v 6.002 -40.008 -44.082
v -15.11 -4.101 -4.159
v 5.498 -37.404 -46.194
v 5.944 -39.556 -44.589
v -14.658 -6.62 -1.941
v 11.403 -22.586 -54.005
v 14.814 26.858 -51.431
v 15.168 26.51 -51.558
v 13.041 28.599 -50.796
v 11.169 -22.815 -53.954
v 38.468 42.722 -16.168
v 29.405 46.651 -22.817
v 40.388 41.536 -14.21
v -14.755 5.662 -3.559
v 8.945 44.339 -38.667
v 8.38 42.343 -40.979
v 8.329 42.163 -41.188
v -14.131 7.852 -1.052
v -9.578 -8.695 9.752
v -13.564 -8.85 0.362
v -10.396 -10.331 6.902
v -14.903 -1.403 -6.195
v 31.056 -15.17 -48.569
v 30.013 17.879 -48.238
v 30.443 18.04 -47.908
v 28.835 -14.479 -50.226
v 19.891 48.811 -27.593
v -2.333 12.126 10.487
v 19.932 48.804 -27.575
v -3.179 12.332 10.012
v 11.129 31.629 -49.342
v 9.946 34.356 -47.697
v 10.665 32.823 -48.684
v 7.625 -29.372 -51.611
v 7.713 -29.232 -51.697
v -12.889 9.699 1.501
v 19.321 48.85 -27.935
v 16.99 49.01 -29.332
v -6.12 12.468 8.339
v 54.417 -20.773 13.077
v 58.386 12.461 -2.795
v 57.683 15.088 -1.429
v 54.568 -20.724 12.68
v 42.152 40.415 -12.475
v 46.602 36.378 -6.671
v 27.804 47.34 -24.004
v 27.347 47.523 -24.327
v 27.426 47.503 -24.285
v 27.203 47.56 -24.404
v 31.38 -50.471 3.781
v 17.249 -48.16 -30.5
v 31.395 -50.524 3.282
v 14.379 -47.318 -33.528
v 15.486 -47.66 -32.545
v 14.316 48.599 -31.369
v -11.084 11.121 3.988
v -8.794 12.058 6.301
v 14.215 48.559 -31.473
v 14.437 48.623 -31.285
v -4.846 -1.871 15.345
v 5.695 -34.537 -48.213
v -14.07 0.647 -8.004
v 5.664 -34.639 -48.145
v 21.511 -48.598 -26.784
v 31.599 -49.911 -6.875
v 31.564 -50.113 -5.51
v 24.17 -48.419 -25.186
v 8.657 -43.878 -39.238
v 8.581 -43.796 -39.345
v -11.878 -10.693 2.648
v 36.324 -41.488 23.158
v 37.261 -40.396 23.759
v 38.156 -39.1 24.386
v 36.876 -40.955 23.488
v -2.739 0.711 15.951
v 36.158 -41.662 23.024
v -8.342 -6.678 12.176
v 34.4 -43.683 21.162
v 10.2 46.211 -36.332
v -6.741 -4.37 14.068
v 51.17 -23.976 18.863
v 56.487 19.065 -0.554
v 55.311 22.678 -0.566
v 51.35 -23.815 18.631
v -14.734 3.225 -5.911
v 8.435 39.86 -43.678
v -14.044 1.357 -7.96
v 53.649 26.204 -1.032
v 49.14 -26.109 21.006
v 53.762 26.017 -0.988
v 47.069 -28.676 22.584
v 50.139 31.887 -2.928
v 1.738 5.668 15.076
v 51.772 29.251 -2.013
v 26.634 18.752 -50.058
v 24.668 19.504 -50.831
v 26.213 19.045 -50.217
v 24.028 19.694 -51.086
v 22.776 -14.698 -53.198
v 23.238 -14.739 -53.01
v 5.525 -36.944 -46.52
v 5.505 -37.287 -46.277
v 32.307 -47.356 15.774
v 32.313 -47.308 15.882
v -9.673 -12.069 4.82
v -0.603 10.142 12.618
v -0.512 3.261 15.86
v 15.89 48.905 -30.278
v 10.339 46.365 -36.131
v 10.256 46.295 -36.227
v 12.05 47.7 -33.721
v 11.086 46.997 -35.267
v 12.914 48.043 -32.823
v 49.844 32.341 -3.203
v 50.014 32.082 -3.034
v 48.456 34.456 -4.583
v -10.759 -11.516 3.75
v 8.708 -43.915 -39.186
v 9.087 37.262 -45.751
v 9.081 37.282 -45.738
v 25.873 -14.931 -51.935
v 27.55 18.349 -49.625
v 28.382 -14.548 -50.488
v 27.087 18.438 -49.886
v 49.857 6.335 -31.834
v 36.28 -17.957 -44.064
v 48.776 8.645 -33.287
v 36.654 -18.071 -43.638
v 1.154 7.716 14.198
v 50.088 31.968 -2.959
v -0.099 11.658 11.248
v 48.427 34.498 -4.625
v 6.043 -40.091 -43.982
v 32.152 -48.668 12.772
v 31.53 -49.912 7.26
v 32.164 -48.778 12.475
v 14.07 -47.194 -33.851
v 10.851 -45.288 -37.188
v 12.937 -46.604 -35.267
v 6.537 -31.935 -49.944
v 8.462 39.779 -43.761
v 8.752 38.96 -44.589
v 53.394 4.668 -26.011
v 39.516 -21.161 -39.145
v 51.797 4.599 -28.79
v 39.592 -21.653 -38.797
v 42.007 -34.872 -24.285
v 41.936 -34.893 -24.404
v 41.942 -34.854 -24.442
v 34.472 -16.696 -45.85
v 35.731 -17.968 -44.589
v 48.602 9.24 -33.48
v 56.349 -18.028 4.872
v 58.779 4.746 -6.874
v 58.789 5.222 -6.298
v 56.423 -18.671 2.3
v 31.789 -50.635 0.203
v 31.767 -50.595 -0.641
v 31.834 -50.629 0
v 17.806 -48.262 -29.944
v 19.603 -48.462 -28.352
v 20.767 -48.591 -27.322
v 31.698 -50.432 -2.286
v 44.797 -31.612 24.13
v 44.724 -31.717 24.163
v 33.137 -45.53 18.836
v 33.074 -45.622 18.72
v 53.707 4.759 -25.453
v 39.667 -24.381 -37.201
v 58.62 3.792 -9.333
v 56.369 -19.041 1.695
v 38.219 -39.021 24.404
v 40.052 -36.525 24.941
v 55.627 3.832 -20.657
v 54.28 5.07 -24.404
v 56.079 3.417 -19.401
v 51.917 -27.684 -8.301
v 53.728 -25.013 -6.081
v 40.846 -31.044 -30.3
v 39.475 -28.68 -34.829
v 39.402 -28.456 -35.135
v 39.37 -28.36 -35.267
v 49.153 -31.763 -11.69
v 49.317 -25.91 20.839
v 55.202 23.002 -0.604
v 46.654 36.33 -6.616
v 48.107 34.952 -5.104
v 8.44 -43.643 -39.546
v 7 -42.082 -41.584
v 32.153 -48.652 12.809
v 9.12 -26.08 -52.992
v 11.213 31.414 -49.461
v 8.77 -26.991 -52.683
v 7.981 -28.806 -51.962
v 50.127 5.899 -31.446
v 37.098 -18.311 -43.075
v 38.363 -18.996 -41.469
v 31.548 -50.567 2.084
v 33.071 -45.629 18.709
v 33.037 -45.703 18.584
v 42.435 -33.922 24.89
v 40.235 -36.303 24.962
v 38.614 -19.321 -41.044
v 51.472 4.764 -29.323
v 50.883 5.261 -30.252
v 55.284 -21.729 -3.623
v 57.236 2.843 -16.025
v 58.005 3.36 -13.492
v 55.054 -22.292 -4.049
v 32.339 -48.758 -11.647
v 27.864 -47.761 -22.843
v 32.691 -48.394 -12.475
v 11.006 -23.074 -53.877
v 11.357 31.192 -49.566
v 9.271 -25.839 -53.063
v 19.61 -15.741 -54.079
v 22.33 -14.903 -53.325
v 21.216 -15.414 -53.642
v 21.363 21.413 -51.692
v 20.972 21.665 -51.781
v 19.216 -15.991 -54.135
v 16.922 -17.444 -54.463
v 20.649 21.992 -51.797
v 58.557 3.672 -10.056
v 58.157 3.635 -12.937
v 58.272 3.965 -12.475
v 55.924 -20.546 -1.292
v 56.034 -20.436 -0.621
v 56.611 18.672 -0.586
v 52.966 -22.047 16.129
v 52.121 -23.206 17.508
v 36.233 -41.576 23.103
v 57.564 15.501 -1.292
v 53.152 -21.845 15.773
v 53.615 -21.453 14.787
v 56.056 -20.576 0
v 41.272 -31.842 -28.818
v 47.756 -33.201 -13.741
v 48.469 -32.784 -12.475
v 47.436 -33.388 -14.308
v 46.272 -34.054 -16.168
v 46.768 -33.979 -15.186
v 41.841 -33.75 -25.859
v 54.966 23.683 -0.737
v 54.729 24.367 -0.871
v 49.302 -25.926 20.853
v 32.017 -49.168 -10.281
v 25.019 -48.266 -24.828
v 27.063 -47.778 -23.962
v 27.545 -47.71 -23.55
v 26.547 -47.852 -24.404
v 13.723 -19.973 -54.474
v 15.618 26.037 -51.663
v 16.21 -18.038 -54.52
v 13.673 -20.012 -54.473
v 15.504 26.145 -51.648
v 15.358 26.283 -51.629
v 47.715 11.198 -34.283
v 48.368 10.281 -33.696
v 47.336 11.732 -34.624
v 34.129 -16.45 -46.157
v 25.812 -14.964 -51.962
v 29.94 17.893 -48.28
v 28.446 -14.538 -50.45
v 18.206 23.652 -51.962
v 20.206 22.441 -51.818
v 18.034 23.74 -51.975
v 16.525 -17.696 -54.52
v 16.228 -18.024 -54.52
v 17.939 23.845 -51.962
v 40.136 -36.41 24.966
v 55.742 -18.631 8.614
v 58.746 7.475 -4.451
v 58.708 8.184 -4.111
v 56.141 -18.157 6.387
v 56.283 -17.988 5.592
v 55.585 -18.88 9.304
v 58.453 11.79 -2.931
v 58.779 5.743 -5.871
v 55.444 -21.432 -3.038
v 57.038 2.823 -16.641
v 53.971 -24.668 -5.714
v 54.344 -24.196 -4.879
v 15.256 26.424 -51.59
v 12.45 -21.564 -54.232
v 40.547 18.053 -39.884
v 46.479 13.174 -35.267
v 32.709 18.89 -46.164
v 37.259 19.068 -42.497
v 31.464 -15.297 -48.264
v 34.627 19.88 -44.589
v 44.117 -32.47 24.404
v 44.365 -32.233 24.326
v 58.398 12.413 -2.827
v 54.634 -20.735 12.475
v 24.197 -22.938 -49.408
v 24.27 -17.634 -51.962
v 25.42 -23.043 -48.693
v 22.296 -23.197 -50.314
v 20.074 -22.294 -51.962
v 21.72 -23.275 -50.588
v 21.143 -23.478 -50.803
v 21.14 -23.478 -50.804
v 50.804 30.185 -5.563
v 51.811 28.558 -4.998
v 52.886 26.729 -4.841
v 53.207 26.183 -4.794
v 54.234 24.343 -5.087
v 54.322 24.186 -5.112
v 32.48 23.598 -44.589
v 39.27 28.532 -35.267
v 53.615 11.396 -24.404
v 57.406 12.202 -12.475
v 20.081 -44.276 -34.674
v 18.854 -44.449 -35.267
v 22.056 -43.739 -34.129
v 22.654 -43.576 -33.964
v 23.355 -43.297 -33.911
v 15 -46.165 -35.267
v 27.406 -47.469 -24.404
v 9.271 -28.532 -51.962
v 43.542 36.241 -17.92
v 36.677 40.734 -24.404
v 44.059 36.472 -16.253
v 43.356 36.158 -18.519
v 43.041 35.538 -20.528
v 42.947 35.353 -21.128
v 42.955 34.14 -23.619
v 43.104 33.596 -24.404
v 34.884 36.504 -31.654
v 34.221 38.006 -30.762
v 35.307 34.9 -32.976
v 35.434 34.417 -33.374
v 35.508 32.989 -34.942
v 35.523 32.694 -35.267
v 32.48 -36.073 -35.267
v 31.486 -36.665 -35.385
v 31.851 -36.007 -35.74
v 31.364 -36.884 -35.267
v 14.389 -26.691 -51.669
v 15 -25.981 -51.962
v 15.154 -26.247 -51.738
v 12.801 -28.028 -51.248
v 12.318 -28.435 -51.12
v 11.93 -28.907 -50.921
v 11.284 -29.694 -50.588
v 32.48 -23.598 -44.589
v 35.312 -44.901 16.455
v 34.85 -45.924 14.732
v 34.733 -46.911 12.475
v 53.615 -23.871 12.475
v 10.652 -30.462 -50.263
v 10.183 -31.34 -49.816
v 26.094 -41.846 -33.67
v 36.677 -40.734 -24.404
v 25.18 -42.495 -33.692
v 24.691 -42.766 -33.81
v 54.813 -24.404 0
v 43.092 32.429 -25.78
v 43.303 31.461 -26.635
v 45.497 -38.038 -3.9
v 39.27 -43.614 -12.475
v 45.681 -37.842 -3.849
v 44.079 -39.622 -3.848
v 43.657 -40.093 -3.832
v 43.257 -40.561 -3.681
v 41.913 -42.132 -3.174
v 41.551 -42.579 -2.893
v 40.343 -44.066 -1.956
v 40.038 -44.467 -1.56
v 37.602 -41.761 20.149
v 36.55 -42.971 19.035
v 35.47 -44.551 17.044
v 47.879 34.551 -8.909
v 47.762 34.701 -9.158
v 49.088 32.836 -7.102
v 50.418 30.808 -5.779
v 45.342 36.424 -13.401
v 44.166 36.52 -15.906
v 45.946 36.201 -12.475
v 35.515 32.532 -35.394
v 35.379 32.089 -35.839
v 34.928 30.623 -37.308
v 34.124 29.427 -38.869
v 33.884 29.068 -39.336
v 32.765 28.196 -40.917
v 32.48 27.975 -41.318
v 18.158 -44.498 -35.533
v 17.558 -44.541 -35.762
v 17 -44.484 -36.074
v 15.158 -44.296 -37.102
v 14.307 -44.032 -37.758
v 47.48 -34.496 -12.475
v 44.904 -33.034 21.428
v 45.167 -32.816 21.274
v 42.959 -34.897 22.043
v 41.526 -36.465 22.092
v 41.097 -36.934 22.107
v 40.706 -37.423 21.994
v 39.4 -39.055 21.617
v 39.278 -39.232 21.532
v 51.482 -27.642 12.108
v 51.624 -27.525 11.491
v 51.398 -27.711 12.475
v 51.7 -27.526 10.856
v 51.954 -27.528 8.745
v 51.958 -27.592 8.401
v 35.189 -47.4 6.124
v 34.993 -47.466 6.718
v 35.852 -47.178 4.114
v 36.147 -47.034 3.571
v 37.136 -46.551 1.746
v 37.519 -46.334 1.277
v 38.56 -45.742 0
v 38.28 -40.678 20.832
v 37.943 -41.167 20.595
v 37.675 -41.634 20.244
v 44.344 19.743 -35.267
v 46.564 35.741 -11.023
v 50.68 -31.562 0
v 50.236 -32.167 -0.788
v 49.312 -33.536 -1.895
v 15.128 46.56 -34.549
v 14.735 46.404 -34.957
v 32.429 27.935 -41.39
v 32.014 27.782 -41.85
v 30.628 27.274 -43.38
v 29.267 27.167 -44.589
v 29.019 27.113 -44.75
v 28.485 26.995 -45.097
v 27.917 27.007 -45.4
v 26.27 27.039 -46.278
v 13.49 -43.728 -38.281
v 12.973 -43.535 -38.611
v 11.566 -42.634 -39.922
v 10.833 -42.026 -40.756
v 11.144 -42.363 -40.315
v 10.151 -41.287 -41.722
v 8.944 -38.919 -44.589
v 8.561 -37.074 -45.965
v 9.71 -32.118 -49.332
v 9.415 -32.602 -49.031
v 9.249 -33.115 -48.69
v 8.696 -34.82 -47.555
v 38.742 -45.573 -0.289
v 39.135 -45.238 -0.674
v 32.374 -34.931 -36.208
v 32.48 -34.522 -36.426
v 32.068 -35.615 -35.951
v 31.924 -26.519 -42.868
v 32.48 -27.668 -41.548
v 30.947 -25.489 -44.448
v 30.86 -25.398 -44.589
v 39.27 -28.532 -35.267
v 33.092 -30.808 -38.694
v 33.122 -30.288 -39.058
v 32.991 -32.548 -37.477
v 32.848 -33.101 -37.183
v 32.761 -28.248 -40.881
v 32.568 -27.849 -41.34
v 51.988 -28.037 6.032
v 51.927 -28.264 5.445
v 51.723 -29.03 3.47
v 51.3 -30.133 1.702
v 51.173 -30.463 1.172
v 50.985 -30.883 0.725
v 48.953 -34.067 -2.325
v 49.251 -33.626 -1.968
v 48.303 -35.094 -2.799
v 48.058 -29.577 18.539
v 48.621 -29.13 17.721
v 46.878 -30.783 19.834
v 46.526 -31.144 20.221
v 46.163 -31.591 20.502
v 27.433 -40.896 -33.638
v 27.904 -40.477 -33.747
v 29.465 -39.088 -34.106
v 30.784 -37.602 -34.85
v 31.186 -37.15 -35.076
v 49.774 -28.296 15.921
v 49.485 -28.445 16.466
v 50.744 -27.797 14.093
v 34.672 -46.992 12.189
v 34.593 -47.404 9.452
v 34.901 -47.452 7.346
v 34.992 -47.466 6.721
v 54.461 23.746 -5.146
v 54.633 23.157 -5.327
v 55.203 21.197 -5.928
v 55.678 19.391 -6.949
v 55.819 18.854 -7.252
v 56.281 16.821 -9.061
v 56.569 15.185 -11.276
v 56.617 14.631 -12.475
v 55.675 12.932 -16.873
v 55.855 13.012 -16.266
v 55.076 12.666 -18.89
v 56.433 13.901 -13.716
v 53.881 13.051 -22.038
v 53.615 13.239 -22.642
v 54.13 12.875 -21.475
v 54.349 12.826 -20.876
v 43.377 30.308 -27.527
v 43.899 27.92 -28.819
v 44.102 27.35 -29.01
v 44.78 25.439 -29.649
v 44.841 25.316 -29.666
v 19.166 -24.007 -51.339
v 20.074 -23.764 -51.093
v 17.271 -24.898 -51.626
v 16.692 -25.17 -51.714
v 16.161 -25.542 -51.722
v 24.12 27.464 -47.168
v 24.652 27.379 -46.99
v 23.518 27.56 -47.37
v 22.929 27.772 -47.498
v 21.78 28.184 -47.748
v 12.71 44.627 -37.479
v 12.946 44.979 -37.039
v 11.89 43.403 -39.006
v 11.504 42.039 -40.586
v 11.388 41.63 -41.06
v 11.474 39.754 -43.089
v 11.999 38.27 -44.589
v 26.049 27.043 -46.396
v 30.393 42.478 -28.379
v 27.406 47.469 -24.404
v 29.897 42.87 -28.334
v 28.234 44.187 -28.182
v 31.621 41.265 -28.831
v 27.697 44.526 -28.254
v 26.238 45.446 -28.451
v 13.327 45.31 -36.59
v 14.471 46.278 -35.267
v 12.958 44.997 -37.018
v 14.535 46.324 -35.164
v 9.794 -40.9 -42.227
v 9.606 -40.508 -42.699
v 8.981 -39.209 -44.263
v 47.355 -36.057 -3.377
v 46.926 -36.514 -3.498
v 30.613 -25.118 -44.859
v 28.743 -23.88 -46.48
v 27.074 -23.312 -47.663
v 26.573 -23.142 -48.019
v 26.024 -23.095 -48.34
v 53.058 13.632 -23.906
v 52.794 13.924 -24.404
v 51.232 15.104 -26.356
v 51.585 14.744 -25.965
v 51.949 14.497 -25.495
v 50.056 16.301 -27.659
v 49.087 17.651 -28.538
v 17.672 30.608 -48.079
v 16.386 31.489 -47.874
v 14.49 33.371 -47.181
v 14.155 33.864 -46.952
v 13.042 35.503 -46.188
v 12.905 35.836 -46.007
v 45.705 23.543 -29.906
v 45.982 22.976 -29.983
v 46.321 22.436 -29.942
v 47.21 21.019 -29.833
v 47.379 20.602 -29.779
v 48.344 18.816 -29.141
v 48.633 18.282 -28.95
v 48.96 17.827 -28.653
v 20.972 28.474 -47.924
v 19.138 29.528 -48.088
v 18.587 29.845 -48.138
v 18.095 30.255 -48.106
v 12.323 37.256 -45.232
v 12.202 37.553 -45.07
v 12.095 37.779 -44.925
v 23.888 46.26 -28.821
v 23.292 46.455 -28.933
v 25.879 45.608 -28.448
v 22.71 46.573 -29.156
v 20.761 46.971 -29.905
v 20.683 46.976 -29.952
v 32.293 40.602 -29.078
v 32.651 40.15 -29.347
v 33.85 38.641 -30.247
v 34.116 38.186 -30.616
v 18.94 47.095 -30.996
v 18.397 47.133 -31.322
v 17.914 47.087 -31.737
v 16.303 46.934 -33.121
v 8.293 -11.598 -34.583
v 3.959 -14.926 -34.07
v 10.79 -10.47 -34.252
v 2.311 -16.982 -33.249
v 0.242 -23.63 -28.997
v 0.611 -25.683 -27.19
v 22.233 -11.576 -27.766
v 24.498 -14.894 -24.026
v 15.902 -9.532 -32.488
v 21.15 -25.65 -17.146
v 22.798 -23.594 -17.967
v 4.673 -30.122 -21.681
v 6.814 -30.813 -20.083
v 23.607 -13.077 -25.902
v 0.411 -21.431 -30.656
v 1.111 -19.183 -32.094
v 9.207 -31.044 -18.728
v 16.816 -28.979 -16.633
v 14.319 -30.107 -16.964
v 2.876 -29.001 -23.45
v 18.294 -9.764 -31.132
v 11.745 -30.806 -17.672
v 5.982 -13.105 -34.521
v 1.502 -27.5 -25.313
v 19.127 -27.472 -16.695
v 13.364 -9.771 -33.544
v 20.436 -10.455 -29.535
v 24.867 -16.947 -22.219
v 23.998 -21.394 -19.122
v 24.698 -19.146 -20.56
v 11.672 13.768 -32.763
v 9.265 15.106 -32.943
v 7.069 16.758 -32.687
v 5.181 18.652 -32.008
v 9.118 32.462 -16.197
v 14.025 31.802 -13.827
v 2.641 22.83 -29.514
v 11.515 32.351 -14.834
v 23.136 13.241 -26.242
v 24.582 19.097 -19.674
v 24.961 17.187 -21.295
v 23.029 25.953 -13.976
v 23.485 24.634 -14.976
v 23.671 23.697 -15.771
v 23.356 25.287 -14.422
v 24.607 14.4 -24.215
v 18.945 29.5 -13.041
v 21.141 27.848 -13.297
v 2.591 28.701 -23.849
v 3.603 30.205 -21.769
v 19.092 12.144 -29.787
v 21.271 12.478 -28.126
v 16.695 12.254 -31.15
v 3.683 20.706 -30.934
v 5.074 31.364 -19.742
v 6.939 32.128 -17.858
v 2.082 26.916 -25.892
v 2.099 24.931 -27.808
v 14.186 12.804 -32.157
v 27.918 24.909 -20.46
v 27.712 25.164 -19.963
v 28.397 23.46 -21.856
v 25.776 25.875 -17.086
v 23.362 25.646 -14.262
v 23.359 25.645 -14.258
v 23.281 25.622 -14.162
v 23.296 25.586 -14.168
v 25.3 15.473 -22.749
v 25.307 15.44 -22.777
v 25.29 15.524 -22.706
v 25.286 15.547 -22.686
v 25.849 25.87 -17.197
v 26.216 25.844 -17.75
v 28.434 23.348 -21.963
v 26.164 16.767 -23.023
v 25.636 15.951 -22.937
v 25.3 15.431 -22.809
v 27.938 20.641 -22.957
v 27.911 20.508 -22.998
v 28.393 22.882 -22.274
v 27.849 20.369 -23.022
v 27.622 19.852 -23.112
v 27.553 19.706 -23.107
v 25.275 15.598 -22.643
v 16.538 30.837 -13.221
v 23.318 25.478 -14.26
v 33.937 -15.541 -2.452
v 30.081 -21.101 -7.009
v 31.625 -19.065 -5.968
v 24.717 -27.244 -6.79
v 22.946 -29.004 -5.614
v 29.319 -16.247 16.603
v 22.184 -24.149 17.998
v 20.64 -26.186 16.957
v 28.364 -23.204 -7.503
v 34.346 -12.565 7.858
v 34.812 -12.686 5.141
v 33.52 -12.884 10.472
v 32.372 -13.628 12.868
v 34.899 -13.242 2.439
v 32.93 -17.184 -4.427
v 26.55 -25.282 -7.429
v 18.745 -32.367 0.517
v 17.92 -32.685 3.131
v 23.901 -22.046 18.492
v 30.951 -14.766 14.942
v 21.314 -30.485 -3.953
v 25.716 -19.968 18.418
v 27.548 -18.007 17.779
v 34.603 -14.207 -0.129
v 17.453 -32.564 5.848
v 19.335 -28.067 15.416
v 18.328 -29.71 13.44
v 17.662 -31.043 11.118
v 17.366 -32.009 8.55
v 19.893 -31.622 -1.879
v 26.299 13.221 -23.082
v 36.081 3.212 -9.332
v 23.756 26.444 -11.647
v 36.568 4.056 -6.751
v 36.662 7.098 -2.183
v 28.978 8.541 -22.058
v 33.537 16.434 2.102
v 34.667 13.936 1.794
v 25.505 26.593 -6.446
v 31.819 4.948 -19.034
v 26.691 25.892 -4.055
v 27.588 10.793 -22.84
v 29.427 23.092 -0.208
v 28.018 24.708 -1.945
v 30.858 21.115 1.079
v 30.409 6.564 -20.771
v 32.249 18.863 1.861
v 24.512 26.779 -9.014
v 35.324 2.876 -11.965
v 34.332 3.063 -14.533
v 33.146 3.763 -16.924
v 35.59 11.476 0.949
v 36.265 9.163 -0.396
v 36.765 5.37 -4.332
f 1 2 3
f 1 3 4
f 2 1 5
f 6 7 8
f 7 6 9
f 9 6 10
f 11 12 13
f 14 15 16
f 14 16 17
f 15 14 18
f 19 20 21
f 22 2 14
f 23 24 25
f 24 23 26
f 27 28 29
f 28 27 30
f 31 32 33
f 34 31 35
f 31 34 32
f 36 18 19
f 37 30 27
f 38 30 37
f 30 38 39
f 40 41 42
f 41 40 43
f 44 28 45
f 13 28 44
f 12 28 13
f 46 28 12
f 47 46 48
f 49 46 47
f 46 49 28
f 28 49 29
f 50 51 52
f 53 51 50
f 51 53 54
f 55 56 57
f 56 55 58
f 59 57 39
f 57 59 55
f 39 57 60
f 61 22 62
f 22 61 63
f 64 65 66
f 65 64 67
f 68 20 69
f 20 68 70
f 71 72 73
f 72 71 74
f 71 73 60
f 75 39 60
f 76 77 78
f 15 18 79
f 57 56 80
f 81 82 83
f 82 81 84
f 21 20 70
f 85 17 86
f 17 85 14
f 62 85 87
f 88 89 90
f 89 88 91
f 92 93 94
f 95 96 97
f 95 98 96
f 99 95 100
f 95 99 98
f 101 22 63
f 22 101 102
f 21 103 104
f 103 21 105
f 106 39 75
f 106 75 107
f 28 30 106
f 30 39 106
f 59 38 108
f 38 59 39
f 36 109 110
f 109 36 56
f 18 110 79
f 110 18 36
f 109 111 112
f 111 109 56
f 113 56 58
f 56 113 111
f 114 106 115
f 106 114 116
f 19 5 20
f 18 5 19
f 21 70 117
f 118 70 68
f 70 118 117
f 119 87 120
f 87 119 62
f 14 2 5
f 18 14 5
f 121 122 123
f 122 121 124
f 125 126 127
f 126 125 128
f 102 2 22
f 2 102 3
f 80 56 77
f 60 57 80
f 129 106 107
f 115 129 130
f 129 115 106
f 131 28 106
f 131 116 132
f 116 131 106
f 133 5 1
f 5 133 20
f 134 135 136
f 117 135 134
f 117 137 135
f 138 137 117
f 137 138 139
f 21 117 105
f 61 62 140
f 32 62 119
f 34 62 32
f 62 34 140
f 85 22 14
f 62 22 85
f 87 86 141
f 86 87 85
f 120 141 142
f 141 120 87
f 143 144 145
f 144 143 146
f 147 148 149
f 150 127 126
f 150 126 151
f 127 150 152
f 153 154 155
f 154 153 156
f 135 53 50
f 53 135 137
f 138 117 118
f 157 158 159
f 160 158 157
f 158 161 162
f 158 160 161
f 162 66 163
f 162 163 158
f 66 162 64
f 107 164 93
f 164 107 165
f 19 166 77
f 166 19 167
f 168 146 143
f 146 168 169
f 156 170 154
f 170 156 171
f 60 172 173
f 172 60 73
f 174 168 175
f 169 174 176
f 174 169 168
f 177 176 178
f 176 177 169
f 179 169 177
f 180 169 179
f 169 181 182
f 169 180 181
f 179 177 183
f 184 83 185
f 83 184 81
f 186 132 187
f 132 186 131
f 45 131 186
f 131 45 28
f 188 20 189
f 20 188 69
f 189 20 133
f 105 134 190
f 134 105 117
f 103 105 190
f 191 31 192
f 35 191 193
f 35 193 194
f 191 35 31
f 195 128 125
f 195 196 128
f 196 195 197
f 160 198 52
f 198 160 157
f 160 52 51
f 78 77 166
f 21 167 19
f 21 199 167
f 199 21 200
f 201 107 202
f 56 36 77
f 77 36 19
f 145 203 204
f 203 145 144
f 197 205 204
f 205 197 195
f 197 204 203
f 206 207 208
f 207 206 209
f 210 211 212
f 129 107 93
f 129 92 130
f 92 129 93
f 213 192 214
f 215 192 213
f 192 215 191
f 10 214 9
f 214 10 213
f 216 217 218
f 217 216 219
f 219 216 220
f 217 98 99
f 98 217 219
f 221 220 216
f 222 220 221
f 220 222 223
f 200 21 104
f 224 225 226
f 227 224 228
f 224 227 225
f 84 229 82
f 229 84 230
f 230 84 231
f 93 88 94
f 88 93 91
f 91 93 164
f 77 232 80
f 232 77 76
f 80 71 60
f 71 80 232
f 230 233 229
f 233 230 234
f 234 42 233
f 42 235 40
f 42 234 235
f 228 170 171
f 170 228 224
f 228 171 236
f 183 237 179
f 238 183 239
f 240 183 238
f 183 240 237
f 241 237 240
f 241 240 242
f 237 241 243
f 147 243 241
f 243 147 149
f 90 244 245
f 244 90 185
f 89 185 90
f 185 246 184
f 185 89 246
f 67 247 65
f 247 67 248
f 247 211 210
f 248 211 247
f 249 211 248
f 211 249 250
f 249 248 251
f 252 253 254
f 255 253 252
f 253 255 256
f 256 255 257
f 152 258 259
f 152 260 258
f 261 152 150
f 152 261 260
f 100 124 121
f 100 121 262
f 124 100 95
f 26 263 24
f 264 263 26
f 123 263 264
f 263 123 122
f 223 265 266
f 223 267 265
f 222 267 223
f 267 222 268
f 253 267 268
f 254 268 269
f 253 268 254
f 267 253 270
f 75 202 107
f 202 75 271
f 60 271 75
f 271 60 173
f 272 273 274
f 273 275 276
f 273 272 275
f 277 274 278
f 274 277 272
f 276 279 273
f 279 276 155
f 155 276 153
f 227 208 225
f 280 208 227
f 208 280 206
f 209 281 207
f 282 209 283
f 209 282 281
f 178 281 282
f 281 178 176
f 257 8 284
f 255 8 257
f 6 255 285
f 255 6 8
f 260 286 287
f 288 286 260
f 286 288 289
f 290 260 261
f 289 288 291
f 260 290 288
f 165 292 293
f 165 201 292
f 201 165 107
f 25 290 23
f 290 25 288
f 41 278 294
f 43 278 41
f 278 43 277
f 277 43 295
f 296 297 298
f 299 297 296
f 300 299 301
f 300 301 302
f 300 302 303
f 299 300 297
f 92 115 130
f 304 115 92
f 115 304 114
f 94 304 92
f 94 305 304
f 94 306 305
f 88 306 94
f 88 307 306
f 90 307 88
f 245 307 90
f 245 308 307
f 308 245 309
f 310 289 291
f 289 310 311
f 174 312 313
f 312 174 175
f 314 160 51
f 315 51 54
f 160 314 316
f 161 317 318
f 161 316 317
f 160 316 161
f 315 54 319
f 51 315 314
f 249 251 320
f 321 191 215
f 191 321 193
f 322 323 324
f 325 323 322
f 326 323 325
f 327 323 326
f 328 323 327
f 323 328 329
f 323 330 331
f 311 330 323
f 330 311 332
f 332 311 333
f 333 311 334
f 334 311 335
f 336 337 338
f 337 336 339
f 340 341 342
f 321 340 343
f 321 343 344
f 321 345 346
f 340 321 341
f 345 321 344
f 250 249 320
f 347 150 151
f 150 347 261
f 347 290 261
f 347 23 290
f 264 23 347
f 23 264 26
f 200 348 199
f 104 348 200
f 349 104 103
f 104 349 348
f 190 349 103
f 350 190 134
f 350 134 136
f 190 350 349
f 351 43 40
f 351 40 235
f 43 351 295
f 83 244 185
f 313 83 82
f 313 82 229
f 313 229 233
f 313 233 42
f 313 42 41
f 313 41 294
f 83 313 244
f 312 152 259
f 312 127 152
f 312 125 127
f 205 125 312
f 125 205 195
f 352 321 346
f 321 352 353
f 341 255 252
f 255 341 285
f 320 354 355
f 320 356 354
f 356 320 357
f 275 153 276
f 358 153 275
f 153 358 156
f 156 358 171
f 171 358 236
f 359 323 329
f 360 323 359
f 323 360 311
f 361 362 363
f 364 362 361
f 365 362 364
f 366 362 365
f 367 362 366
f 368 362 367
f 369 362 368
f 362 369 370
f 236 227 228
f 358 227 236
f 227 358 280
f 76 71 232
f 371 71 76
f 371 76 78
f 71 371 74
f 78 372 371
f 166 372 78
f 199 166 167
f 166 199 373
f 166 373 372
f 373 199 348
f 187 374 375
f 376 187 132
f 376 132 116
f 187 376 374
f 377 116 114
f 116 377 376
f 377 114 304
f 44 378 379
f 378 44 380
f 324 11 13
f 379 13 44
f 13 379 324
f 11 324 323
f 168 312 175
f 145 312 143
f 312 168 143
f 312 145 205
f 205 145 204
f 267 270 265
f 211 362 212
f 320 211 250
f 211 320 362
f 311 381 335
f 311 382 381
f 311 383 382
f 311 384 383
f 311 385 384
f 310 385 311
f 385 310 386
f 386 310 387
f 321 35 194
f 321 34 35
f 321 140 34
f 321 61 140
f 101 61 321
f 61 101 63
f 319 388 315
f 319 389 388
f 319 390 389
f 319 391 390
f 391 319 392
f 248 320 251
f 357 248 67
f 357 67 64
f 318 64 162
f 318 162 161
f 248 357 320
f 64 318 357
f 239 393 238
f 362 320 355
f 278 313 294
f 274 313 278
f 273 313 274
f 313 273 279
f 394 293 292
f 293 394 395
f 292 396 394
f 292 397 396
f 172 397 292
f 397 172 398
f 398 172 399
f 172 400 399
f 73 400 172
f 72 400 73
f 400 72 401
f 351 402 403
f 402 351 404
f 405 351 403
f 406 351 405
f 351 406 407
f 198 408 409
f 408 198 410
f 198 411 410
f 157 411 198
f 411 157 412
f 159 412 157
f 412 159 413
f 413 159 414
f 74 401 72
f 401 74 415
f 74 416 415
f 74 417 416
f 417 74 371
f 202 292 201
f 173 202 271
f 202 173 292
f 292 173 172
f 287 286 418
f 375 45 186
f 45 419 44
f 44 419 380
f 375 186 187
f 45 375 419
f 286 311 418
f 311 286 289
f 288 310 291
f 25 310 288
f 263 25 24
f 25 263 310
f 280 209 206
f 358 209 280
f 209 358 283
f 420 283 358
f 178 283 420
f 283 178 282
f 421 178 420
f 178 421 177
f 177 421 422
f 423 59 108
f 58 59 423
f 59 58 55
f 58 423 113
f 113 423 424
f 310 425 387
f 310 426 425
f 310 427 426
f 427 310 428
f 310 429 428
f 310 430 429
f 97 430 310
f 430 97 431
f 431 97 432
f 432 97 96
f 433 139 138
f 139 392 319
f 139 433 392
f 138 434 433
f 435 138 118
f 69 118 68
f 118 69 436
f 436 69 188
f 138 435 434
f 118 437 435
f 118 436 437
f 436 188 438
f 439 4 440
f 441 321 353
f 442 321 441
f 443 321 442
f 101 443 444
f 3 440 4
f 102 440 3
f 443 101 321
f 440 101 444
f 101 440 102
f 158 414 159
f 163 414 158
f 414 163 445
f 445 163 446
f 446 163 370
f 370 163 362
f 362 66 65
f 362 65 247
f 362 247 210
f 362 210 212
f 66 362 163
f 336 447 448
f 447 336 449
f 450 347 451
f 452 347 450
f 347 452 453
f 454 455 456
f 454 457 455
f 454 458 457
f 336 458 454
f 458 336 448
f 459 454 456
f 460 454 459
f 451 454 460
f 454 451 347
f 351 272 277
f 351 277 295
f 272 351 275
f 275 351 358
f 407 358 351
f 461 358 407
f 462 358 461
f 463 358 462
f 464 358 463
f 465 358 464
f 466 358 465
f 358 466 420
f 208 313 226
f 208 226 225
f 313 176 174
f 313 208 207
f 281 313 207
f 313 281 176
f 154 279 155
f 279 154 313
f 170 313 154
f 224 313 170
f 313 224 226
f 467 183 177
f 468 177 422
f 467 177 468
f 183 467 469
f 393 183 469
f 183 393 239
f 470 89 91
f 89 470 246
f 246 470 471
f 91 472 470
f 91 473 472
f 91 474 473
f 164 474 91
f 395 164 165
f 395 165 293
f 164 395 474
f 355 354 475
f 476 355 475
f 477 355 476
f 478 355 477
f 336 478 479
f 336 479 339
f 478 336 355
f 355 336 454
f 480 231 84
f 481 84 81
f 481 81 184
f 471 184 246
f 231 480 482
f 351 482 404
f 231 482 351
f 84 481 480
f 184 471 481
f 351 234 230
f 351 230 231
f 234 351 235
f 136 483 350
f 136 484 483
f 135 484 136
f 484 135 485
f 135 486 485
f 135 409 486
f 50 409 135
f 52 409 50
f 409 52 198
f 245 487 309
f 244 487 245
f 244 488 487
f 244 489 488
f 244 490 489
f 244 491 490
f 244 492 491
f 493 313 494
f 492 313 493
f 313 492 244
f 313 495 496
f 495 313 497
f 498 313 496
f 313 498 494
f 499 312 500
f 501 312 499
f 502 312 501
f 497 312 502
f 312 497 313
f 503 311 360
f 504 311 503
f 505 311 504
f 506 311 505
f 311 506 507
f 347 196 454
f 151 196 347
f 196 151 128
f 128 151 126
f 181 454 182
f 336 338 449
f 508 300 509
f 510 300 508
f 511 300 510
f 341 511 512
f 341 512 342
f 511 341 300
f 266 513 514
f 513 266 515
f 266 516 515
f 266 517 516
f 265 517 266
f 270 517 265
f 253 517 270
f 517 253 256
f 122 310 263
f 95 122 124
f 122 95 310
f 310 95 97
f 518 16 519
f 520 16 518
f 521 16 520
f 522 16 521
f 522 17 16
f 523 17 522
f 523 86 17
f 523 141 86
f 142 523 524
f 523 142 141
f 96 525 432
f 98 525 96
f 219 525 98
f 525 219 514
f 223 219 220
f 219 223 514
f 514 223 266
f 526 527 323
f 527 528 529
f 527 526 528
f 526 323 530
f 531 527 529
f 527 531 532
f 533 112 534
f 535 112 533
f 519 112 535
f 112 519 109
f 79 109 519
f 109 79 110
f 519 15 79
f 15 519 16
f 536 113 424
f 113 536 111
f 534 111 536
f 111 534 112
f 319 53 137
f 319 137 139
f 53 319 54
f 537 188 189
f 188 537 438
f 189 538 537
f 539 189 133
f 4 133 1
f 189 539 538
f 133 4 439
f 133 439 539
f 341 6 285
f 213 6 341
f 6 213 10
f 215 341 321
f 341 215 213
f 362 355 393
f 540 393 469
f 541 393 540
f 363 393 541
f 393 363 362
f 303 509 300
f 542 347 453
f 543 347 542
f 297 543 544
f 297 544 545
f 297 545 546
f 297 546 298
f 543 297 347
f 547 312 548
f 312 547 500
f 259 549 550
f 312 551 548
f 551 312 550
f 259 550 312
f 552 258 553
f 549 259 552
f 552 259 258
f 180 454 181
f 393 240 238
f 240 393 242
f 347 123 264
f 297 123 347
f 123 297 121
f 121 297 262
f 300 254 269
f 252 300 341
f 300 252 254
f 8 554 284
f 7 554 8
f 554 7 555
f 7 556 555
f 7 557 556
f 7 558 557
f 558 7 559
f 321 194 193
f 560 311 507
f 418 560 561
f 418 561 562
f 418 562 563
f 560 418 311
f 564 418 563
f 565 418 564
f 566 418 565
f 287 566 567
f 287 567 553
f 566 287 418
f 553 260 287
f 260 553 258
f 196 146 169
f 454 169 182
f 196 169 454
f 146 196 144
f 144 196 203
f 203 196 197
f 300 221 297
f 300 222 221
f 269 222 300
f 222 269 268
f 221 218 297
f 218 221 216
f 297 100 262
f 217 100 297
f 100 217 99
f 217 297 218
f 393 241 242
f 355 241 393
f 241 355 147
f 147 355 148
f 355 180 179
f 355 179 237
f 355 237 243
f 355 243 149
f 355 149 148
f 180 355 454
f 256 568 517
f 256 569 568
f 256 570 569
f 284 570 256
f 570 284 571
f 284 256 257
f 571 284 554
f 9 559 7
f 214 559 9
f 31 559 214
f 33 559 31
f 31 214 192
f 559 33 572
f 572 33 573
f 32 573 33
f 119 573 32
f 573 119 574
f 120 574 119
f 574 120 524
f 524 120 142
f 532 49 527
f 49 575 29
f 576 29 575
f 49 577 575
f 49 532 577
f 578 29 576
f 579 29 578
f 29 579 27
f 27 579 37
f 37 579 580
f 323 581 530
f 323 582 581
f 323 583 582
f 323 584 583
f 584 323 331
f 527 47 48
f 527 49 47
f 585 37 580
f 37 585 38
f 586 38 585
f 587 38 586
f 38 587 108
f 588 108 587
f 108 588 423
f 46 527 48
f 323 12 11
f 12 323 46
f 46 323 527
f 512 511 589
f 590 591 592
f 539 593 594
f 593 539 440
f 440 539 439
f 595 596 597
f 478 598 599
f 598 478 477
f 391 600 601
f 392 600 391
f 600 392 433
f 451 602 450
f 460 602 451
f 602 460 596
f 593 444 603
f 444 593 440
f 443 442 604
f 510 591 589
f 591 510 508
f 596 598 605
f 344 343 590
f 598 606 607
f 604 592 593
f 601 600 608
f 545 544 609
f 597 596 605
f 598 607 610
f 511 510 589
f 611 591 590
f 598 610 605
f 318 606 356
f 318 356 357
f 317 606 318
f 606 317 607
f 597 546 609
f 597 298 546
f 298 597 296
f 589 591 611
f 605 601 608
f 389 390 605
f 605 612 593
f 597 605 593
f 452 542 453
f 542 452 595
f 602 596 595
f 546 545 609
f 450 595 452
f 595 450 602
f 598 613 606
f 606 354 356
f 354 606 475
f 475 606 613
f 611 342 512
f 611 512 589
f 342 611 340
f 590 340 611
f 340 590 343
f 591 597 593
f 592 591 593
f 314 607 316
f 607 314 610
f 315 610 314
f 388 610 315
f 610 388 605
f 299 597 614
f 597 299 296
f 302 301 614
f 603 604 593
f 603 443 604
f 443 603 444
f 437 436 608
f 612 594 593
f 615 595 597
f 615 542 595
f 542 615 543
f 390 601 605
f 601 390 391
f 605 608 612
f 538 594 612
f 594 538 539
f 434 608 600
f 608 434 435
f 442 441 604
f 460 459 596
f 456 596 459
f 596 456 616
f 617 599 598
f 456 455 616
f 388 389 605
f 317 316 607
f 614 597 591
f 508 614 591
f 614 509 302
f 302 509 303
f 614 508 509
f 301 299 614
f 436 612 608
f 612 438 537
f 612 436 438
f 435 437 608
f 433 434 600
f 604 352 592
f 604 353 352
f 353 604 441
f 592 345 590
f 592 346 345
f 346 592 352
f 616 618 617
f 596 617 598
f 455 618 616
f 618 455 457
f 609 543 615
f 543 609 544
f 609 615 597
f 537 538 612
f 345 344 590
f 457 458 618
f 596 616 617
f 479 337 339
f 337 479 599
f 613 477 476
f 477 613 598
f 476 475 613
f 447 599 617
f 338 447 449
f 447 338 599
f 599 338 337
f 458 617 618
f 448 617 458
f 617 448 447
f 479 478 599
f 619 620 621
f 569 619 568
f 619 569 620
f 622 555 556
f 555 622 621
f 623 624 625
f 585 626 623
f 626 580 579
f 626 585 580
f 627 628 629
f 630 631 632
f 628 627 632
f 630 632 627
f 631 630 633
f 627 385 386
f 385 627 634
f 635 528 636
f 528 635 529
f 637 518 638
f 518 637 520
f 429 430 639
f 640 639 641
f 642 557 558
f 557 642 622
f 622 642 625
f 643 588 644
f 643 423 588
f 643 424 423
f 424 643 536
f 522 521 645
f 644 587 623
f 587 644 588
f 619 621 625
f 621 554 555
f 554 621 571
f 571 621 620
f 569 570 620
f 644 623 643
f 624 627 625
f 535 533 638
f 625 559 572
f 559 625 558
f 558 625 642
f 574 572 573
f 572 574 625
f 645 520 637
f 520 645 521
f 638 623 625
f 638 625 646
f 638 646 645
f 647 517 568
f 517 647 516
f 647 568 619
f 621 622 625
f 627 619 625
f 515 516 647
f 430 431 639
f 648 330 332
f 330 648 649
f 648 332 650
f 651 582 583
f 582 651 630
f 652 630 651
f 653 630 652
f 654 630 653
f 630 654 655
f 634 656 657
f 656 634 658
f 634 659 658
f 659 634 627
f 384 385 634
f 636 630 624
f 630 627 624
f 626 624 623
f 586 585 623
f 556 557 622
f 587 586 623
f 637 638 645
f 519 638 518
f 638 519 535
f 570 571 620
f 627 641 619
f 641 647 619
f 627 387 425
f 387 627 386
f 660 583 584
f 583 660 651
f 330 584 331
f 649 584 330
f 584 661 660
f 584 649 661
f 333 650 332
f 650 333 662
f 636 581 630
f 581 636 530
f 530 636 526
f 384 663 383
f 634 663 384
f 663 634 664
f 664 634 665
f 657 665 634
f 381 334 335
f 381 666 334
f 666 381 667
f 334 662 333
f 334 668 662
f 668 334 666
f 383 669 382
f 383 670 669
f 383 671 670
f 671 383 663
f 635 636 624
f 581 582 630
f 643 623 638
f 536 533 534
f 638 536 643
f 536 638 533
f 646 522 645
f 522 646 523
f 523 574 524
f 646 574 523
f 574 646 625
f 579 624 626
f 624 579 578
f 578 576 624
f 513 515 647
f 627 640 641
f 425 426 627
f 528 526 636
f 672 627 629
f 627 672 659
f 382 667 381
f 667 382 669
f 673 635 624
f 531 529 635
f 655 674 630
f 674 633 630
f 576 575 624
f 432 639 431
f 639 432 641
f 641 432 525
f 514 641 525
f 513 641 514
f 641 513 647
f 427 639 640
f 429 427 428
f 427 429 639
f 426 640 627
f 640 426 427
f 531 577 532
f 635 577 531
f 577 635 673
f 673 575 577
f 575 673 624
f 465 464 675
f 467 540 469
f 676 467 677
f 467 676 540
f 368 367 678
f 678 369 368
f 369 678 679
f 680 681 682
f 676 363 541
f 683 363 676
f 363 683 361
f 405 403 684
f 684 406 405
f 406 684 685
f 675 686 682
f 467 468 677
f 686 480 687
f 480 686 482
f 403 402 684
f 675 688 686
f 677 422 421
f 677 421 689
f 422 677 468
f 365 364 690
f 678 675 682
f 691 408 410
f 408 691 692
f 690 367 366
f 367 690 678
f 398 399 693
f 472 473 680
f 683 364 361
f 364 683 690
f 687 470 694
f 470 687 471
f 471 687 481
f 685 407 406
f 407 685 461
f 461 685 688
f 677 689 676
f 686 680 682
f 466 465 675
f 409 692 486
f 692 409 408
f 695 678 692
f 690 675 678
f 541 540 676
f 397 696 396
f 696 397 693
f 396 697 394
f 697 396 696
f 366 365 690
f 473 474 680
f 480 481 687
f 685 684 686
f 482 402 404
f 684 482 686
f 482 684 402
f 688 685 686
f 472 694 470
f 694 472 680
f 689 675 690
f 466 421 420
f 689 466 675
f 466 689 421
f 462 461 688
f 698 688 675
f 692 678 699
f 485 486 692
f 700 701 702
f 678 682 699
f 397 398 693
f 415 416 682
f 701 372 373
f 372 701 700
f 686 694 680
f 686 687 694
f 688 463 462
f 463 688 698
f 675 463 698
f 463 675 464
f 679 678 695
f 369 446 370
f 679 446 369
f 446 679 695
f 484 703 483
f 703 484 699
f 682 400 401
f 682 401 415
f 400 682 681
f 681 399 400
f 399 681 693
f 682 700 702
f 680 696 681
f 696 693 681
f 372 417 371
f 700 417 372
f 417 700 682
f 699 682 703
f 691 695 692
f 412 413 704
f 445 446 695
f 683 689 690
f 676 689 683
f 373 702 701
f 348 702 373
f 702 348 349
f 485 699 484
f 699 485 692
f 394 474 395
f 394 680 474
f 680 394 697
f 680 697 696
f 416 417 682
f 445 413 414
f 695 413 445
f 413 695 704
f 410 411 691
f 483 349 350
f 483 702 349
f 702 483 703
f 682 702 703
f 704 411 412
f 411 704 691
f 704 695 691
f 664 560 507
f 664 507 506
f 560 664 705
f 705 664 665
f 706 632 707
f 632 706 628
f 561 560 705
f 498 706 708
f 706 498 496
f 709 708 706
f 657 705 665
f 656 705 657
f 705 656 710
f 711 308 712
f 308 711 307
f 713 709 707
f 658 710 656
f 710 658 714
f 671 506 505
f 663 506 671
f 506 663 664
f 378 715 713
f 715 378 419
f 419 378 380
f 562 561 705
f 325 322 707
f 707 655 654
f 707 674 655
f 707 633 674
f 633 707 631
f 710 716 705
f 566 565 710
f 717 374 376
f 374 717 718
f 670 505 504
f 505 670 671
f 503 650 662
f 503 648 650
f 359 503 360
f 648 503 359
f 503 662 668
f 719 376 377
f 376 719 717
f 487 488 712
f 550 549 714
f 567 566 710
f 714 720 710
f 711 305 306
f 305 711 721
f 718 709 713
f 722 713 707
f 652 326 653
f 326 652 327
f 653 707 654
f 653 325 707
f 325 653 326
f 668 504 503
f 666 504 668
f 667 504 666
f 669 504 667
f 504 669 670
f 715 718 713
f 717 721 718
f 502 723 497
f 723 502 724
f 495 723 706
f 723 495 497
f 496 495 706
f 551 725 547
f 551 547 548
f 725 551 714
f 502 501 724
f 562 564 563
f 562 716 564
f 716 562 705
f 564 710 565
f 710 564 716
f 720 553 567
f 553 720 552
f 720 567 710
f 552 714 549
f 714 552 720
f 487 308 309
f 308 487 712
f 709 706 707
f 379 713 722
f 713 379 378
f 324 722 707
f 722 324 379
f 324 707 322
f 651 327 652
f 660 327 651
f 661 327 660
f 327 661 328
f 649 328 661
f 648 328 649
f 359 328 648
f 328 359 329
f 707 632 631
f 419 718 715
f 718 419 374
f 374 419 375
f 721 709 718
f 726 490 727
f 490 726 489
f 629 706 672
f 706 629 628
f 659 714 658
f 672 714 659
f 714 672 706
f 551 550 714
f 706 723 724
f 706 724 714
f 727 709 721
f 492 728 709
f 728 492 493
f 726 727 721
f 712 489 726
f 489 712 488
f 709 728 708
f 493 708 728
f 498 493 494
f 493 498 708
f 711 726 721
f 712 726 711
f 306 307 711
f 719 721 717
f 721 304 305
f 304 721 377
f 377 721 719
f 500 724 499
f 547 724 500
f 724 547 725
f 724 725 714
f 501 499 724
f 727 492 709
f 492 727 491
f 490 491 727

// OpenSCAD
difference() {
	intersection() {
		hull() {
			rotate(a = -61.4394932690, v = [-0.0612621510, -0.8761736064, 0.0000000000]) {
				rotate(a = -90.0000000000, v = [-0.6099942813, -0.7924058157, 0.0000000000]) {
					cylinder(h = 60, r = 16.2000000000);
				}
			}
			rotate(a = -61.4394932690, v = [-0.0612621510, -0.8761736064, 0.0000000000]) {
				rotate(a = -90.0000000000, v = [0.6099942813, -0.7924058157, 0.0000000000]) {
					cylinder(h = 60, r = 16.2000000000);
				}
			}
			rotate(a = -61.4394932690, v = [-0.0612621510, -0.8761736064, 0.0000000000]) {
				rotate(a = -39.7498124436, v = [-0.6080625867, -0.1978355612, 0.0000000000]) {
					cylinder(h = 60, r = 16.2000000000);
				}
			}
			rotate(a = -61.4394932690, v = [-0.0612621510, -0.8761736064, 0.0000000000]) {
				rotate(a = -54.5691409339, v = [0.4352571991, -0.6888220125, 0.0000000000]) {
					cylinder(h = 60, r = 16.2000000000);
				}
			}
		}
		sphere(r = 60);
	}
	union() {
		rotate(a = -61.4394932690, v = [-0.0612621510, -0.8761736064, 0.0000000000]) {
			rotate(a = -90.0000000000, v = [-0.6099942813, -0.7924058157, 0.0000000000]) {
				translate(v = [0, 0, 35]) {
					cylinder(h = 100, r = 13.2000000000);
				}
			}
		}
		rotate(a = -61.4394932690, v = [-0.0612621510, -0.8761736064, 0.0000000000]) {
			rotate(a = -90.0000000000, v = [0.6099942813, -0.7924058157, 0.0000000000]) {
				translate(v = [0, 0, 35]) {
					cylinder(h = 100, r = 13.2000000000);
				}
			}
		}
		rotate(a = -61.4394932690, v = [-0.0612621510, -0.8761736064, 0.0000000000]) {
			rotate(a = -39.7498124436, v = [-0.6080625867, -0.1978355612, 0.0000000000]) {
				translate(v = [0, 0, 35]) {
					cylinder(h = 100, r = 13.2000000000);
				}
			}
		}
		rotate(a = -61.4394932690, v = [-0.0612621510, -0.8761736064, 0.0000000000]) {
			rotate(a = -54.5691409339, v = [0.4352571991, -0.6888220125, 0.0000000000]) {
				translate(v = [0, 0, 35]) {
					cylinder(h = 100, r = 13.2000000000);
				}
			}
		}
	}
}
